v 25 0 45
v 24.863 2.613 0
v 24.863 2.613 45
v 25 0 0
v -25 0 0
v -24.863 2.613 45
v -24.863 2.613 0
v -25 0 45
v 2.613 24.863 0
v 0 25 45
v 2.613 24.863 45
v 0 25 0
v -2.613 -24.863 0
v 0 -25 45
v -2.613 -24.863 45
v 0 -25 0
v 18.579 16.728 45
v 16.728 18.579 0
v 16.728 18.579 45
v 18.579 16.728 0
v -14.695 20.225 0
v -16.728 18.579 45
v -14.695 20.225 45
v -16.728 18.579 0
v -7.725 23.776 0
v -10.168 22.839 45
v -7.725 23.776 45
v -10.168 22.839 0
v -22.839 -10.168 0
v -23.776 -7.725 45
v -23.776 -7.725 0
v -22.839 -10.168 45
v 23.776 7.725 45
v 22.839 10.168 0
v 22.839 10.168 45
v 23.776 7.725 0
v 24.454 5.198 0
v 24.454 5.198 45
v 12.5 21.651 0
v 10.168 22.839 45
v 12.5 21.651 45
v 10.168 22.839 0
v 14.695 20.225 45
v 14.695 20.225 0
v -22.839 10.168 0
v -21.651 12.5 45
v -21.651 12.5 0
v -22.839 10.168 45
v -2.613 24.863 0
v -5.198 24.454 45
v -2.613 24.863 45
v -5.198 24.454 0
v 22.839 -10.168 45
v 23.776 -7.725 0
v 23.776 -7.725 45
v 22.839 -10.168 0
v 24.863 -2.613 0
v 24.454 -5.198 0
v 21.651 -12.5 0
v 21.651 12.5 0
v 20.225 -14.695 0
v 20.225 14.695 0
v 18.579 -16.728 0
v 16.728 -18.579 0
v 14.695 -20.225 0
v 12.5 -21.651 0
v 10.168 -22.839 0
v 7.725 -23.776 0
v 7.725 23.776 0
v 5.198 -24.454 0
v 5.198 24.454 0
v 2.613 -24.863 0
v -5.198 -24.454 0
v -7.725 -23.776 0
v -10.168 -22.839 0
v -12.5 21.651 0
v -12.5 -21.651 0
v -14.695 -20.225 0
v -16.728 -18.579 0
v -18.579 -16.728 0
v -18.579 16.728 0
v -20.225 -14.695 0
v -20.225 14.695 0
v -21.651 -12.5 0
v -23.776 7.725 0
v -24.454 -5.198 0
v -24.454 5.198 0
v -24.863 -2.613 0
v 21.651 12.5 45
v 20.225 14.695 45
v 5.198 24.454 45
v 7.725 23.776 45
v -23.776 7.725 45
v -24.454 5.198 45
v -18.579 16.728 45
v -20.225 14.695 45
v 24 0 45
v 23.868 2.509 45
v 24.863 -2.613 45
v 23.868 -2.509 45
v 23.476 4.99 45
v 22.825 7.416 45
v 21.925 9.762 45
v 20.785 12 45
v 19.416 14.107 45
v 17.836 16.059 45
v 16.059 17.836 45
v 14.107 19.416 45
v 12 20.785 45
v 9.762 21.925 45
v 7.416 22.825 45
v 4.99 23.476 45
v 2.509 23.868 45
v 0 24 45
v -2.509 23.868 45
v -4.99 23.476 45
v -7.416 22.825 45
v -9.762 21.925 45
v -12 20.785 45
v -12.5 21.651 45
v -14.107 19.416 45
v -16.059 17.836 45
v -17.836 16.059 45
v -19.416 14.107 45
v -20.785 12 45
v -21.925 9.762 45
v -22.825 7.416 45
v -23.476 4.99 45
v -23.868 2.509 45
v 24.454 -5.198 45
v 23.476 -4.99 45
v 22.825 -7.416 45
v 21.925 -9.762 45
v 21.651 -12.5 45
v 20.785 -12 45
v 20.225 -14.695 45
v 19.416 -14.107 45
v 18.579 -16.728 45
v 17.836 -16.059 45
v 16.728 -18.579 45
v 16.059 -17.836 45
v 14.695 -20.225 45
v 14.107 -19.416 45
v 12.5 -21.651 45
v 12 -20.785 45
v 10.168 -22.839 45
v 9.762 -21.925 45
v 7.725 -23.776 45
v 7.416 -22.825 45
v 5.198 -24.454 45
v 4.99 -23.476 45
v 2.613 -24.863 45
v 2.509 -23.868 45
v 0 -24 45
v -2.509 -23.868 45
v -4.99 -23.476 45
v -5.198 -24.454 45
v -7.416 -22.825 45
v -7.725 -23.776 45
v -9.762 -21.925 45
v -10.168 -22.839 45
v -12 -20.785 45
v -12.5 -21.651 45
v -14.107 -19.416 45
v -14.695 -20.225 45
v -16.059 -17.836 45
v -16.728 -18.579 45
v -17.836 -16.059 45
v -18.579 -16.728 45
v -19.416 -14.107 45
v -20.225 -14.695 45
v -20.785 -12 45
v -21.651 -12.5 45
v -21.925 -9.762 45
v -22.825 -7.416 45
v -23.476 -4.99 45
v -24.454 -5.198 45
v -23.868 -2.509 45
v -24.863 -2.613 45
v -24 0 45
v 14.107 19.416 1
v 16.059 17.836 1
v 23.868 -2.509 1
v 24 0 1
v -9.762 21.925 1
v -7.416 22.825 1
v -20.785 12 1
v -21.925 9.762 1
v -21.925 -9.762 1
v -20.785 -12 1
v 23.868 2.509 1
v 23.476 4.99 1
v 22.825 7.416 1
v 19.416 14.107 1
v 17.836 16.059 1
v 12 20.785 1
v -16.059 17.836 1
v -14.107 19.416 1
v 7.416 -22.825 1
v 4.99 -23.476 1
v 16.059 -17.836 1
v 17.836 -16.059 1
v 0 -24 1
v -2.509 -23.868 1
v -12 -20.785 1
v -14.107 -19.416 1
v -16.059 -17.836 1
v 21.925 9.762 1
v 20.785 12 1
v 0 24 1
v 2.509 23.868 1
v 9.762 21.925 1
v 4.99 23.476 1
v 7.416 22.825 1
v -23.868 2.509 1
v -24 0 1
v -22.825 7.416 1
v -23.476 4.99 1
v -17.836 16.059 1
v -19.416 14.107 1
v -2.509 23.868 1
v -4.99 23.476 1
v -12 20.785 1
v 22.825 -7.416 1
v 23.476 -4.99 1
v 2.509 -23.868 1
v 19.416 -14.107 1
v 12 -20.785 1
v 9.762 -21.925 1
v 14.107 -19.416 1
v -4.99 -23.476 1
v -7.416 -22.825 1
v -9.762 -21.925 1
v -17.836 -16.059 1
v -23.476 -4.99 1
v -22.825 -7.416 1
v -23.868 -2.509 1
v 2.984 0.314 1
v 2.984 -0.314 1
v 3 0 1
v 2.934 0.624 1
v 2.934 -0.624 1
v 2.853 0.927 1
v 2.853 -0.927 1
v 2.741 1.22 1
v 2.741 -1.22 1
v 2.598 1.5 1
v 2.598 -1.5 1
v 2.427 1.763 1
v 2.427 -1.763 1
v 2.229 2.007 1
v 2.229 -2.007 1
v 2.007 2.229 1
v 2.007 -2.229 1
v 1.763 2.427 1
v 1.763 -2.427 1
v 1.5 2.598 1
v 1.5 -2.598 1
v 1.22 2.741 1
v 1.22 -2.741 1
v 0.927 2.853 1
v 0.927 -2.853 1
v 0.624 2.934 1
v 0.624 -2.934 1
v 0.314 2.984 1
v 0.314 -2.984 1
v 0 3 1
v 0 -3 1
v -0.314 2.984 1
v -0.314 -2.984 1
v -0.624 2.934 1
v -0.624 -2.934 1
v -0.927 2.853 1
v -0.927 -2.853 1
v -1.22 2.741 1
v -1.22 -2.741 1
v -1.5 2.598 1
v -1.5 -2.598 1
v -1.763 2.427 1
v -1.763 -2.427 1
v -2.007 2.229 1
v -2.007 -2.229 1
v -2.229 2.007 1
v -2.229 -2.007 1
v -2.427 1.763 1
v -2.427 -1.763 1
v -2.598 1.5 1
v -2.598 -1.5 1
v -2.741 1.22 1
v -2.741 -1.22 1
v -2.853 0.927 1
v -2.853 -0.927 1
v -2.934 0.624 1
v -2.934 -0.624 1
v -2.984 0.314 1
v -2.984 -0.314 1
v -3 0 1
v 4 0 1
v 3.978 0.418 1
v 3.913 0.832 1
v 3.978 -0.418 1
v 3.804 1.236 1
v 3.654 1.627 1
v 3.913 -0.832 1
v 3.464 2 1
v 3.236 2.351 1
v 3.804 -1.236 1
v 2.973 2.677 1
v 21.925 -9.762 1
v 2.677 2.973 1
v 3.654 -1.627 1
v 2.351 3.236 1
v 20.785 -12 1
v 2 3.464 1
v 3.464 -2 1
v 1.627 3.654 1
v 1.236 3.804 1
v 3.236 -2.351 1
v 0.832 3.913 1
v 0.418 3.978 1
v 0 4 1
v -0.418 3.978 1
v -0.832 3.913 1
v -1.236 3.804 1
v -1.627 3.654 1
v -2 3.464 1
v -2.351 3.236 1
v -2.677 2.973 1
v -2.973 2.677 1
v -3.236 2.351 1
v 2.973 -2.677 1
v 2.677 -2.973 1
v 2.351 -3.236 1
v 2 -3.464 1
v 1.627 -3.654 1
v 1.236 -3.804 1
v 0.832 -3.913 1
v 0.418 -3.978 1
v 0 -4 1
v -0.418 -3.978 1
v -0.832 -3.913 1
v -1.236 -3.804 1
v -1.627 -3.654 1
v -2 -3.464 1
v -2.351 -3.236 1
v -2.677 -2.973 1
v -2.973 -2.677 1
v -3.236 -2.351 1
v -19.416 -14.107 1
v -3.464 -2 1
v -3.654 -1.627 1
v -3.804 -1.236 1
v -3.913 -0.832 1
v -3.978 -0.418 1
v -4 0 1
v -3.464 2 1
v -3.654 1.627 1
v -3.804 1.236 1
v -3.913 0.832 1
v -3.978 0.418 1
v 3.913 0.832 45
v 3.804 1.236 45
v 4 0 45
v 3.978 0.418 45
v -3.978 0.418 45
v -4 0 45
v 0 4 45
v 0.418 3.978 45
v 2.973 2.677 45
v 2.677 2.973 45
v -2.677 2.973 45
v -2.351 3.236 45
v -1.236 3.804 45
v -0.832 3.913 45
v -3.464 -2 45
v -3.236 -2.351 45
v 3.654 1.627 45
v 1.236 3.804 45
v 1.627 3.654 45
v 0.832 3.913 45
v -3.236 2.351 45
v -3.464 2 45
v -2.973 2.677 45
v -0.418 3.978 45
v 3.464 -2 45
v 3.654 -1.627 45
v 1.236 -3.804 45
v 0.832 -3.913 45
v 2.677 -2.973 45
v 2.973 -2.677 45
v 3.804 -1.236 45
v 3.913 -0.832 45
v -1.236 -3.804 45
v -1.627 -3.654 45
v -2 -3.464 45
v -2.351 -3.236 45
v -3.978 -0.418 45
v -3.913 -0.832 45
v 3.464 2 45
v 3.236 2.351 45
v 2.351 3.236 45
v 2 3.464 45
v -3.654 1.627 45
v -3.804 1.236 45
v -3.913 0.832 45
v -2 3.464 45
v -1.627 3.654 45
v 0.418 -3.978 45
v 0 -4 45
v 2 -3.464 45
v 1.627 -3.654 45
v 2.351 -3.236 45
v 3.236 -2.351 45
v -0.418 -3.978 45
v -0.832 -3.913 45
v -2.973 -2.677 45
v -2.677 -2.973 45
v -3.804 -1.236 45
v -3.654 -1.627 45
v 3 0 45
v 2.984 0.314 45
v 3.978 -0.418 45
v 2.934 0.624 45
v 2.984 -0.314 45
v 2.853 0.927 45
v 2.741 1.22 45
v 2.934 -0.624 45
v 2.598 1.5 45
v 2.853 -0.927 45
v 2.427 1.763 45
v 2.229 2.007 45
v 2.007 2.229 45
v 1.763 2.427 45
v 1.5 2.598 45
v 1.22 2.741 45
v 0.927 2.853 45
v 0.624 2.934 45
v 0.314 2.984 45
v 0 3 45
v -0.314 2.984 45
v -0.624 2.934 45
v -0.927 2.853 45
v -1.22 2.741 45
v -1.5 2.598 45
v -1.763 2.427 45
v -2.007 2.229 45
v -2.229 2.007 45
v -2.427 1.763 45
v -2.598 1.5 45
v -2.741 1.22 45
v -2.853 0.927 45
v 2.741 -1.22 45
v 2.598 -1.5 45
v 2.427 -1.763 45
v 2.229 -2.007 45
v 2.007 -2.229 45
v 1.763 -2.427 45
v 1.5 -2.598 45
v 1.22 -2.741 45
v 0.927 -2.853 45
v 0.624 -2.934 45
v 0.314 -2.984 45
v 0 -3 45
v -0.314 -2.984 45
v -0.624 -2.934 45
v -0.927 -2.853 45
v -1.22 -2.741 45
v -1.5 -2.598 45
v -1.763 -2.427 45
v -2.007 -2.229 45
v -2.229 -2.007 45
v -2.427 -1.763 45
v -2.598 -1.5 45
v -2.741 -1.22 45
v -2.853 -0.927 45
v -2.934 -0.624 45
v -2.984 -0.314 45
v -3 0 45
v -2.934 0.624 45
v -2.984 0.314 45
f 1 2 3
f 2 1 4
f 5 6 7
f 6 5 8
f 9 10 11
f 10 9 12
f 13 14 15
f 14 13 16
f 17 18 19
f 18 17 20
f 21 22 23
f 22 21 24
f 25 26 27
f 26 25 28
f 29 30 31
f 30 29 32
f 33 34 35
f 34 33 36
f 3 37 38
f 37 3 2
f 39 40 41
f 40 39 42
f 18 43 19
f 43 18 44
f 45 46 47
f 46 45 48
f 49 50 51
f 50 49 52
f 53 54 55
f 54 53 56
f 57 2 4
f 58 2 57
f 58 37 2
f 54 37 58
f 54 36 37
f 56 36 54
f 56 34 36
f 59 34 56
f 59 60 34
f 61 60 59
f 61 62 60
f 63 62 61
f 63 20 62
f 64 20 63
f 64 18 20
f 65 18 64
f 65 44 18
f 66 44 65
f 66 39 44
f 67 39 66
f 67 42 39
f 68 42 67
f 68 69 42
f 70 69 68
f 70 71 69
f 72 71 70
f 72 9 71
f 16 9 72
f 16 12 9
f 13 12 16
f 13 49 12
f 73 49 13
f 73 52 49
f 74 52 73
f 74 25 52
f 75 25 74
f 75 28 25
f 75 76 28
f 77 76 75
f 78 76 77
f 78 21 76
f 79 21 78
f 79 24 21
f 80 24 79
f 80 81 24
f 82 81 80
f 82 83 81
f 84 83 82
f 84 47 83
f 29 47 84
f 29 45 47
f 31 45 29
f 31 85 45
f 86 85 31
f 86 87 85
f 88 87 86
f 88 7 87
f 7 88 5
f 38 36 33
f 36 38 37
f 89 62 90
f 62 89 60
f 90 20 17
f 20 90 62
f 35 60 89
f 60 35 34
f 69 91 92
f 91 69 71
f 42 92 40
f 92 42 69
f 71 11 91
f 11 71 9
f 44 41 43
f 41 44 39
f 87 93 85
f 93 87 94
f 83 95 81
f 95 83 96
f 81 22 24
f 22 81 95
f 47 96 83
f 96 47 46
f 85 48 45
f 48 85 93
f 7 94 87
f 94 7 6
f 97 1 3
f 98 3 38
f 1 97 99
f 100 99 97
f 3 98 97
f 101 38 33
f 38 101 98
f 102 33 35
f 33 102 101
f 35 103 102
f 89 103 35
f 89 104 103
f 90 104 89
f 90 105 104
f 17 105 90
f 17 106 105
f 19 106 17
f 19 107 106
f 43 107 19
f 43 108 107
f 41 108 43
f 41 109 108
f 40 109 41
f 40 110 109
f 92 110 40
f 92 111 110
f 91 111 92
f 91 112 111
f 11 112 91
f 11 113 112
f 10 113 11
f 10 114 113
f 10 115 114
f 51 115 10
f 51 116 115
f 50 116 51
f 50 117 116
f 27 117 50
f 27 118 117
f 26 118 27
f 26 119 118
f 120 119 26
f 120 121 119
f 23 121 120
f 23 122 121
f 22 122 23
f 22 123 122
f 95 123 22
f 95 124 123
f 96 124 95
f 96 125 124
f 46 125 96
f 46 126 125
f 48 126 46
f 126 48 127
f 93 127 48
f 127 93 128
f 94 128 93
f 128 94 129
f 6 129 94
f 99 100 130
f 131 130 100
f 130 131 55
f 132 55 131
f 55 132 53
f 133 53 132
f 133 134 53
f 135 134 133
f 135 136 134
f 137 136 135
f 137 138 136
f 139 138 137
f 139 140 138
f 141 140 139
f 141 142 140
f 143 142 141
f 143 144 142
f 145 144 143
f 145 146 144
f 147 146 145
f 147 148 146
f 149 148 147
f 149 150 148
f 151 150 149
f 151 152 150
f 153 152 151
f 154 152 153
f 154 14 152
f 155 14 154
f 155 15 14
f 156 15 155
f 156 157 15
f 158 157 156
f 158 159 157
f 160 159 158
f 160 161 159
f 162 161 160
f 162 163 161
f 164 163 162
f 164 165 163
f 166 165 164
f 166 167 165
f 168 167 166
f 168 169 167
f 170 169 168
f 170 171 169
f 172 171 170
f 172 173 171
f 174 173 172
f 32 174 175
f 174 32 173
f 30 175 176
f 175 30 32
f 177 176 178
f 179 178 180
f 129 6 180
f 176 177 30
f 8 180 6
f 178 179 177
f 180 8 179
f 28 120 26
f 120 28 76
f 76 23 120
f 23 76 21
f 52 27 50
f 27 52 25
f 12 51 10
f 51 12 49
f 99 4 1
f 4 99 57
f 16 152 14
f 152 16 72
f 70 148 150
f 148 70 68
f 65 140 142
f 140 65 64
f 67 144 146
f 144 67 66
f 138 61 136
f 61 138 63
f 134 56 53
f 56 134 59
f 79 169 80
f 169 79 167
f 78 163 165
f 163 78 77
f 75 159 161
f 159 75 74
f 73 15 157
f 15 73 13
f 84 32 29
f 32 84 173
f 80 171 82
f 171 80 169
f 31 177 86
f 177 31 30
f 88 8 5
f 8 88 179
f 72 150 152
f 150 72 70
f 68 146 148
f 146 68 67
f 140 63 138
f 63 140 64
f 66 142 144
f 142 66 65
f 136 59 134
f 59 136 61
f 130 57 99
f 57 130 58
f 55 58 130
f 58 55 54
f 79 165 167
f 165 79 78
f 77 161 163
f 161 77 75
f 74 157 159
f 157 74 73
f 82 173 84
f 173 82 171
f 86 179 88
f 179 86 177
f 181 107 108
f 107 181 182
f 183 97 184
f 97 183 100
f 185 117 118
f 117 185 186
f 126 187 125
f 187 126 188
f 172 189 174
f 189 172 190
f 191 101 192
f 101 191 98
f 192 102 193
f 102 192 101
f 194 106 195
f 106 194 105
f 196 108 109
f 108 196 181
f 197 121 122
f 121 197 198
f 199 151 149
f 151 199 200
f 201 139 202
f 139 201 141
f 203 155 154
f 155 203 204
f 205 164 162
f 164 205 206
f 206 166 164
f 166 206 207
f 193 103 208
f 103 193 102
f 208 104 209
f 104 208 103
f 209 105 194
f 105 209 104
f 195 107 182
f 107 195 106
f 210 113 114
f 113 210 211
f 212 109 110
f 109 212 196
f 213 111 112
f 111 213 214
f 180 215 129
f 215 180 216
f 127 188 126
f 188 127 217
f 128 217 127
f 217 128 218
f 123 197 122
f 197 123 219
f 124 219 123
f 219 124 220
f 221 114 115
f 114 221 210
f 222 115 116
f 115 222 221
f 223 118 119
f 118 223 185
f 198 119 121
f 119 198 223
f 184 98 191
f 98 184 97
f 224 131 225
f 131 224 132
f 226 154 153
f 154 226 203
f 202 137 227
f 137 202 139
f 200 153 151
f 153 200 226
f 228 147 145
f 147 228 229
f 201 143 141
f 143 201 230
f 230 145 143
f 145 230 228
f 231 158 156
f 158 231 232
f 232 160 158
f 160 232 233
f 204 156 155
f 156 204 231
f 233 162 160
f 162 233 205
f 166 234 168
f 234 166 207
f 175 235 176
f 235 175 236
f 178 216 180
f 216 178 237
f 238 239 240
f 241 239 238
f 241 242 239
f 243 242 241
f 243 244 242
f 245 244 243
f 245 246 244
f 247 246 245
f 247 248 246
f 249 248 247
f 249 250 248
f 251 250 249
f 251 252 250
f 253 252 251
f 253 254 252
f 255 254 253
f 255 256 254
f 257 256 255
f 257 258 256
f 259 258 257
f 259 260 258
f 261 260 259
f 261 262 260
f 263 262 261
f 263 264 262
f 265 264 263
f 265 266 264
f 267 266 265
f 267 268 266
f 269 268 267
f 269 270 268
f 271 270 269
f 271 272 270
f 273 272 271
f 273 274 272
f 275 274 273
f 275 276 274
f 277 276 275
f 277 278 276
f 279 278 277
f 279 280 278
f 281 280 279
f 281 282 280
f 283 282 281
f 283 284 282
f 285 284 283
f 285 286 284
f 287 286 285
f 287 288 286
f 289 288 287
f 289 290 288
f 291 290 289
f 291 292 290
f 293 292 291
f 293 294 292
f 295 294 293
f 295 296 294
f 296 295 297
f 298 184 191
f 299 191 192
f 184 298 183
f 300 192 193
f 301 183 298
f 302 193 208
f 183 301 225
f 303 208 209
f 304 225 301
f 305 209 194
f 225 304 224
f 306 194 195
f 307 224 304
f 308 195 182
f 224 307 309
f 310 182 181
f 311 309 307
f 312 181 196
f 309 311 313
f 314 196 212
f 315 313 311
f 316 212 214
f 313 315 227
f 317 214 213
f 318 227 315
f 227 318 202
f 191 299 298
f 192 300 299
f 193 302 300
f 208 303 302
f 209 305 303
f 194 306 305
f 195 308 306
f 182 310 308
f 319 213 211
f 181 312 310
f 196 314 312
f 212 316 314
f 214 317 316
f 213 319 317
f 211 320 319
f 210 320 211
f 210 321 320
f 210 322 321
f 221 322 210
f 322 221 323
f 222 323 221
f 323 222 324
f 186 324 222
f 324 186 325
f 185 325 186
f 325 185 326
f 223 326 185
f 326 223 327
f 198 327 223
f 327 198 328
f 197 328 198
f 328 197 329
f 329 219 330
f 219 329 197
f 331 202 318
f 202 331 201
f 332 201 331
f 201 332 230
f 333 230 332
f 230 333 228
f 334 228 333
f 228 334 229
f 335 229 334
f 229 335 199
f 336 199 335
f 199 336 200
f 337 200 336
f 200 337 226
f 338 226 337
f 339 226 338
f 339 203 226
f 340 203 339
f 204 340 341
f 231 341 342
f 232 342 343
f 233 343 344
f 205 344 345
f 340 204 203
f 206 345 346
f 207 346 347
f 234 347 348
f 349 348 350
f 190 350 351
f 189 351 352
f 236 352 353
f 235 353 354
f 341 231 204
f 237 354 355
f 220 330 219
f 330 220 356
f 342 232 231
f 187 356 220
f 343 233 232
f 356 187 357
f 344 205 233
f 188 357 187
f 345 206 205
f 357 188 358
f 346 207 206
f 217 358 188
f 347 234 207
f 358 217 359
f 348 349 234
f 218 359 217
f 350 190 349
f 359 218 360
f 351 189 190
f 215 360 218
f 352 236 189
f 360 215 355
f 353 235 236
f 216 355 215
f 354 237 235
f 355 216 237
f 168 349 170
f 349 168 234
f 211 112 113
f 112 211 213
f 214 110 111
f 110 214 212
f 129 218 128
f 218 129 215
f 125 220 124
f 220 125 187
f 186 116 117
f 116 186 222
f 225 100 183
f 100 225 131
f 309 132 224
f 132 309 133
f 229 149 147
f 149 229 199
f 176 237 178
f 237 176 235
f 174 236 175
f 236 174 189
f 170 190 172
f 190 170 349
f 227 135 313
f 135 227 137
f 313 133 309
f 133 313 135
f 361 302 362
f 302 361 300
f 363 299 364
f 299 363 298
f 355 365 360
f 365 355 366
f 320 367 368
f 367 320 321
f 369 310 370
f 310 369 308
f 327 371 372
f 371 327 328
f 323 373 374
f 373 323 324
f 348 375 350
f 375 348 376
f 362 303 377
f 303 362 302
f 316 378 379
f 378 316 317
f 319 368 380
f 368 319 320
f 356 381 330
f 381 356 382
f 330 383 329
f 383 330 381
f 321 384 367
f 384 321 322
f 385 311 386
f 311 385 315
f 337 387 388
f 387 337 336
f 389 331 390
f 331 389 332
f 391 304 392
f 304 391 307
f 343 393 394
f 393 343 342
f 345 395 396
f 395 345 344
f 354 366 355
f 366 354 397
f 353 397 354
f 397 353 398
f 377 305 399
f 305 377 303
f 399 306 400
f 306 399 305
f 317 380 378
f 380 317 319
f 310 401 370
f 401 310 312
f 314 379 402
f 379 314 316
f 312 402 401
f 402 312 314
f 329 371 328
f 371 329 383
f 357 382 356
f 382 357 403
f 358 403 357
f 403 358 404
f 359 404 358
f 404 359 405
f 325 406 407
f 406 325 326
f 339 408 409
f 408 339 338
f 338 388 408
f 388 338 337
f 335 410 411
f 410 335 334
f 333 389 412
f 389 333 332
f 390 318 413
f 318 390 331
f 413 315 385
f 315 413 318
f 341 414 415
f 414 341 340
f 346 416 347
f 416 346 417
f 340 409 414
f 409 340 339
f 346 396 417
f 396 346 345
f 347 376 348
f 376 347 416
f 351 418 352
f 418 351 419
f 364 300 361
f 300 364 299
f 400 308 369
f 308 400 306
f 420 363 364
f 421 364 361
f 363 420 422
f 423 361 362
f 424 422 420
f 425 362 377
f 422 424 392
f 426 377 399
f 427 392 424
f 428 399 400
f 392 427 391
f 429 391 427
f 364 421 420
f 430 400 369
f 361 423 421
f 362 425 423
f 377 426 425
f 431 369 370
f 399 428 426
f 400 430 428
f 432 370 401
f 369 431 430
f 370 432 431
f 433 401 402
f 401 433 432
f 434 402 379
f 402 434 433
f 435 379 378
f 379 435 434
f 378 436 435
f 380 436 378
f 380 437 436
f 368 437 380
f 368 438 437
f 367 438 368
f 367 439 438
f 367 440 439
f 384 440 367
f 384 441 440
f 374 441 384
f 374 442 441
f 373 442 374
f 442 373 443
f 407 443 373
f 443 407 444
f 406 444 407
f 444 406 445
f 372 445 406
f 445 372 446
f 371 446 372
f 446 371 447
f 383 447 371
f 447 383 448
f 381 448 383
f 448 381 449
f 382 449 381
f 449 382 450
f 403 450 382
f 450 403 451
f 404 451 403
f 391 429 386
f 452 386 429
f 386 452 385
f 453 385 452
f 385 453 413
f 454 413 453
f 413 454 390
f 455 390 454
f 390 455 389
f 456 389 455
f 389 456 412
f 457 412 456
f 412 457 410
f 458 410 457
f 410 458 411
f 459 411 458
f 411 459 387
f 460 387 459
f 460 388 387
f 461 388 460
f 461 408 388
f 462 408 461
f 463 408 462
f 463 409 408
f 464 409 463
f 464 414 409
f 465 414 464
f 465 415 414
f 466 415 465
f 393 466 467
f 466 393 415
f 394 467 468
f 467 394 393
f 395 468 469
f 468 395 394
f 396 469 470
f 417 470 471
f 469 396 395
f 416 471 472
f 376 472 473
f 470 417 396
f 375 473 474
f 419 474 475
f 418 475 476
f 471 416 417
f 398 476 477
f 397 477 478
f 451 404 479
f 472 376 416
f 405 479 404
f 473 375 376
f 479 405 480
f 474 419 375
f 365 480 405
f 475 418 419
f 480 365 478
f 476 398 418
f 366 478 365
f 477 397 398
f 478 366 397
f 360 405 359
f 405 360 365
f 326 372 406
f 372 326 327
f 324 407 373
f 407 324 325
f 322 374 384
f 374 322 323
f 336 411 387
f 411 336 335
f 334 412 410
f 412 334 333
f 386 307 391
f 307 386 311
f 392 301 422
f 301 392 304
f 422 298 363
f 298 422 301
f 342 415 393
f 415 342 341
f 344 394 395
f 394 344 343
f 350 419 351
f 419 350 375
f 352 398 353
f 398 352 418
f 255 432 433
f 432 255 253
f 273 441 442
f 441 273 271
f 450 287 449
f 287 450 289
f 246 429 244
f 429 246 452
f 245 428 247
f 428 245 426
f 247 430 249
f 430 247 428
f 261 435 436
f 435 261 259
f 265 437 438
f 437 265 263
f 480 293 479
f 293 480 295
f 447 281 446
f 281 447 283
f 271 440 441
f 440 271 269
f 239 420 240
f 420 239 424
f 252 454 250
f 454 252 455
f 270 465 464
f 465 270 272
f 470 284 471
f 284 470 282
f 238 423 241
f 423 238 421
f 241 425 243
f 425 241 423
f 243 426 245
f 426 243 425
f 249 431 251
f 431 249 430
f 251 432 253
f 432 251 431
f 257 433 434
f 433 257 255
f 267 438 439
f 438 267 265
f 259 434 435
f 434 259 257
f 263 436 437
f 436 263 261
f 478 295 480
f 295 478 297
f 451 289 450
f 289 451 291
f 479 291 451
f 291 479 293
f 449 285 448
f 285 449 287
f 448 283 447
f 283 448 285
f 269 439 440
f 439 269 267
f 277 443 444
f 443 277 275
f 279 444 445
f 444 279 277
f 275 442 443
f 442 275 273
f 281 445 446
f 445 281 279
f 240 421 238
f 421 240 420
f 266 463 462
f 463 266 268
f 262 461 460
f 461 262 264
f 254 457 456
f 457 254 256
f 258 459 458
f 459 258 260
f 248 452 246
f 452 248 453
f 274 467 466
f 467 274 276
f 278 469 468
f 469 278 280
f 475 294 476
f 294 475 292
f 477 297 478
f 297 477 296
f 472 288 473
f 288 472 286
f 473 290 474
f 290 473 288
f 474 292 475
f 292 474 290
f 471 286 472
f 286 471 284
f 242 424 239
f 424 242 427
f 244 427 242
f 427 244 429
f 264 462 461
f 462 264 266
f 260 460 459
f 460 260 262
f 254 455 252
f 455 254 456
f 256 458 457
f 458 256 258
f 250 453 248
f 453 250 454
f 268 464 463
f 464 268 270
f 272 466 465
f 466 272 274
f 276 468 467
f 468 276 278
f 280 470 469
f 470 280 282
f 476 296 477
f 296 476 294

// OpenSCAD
$fn=60;

union() {
    difference() {
        cylinder(d=50,h=45);
        translate([0,0,1])
        cylinder(d=48,h=45);
    }
    difference() {
        cylinder(d=8,h=45);
        translate([0,0,1])
        cylinder(d=6,h=45);
    }
}
